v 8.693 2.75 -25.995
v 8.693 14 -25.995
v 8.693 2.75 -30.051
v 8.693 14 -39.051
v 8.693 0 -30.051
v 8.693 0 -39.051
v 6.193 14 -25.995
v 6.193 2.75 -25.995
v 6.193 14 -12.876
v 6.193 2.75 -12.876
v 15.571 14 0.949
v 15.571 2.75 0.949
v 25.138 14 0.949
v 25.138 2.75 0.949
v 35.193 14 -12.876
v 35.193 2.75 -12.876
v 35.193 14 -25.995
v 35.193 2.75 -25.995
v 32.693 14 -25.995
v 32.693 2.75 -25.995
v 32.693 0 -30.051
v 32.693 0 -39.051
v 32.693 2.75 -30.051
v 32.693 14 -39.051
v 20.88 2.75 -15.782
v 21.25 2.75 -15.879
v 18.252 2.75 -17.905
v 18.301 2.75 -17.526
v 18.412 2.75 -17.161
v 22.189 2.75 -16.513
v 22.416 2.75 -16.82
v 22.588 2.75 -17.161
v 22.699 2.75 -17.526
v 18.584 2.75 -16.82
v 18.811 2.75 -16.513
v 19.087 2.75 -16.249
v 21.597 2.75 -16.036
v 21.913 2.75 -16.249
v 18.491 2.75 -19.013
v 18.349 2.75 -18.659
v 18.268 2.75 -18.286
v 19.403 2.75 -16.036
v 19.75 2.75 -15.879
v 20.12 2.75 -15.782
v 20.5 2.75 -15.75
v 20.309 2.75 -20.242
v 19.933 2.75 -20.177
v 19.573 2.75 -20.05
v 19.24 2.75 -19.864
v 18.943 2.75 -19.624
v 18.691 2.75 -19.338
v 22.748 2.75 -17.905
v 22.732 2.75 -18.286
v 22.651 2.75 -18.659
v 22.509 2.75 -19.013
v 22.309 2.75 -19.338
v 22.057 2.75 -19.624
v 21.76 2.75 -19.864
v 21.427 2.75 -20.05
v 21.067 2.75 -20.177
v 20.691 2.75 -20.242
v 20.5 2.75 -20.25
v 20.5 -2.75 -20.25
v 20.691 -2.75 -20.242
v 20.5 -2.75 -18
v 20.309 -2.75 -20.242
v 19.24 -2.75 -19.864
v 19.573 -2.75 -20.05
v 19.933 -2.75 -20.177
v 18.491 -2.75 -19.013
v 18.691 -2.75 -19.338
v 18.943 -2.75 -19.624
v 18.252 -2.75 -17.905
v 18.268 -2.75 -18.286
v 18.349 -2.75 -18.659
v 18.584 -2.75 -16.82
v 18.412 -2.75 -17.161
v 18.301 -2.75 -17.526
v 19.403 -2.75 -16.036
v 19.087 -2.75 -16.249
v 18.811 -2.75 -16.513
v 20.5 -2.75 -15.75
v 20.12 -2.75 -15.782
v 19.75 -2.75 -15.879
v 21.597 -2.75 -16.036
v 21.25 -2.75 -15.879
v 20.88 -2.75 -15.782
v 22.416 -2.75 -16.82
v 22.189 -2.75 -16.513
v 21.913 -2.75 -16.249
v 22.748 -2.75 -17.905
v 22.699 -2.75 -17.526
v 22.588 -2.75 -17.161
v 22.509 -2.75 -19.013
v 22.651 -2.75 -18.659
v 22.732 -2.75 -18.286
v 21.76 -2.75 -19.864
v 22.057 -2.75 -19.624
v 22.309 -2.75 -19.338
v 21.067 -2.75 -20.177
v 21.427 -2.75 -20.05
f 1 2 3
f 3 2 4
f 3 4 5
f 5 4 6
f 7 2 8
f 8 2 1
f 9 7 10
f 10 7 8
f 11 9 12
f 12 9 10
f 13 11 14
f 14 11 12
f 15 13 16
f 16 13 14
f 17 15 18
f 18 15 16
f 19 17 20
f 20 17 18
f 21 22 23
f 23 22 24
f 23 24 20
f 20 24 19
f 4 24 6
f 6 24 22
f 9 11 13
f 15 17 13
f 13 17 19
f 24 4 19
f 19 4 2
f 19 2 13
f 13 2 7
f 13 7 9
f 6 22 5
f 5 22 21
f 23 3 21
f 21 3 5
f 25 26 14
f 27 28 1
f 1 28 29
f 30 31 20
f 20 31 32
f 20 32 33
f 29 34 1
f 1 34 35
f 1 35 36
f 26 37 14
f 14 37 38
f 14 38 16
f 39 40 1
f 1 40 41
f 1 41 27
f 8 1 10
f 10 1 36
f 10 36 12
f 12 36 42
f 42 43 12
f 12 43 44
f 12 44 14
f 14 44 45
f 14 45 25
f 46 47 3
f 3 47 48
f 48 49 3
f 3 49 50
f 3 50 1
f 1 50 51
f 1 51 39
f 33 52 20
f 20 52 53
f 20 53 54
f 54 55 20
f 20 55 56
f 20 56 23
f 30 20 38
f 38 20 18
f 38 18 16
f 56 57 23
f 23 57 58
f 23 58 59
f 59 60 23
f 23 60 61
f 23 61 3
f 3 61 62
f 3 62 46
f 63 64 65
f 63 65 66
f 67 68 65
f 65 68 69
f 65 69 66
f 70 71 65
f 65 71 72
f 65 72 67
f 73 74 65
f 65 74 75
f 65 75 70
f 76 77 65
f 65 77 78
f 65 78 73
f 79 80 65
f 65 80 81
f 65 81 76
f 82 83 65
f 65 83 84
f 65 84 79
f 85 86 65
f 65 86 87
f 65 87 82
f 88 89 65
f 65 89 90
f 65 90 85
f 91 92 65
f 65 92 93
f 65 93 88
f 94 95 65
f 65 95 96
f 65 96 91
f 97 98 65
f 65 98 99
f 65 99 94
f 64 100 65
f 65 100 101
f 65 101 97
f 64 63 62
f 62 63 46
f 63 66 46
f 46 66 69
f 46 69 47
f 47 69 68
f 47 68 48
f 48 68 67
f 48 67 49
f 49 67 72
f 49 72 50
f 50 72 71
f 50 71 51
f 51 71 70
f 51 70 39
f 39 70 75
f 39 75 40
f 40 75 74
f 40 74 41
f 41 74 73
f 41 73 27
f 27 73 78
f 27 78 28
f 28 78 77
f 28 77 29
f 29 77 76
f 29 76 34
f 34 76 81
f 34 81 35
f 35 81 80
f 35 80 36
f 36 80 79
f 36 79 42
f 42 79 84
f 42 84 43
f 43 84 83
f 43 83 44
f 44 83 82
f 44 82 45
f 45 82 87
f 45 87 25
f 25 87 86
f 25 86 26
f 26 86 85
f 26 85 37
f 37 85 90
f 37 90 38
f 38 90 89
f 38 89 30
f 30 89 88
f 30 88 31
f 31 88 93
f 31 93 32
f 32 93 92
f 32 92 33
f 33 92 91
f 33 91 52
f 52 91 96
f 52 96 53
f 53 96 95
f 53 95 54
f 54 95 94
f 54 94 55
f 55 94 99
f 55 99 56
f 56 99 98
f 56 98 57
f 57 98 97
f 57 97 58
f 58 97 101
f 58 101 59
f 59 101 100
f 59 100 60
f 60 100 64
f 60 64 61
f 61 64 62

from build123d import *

# Parameters (mm, degrees)
BOSS_EXTRUDE1_DEPTH = 14
SKETCH2_R           = 2.25
BOSS_EXTRUDE2_DEPTH = 2.75
SKETCH4_R           = 2.25
CUT_EXTRUDE1_DEPTH  = 2.75


with BuildPart() as part:
    # Sketch1 → Boss-Extrude1 (new body)
    with BuildSketch(Plane(origin=(0, 0, 0), x_dir=(1, 0, 0), z_dir=(0, 1, 0))):
        Polygon((8.692930554, 39.050653624), (32.692930554, 39.050653624), (32.692930554, 25.995392605), (35.192930554, 25.995392605), (35.192930554, 12.875501581), (25.138333129, -0.949346376), (15.571219536, -0.949346376), (6.192930554, 12.875501581), (6.192930554, 25.995392605), (8.692930554, 25.995392605), align=None)
    extrude(amount=BOSS_EXTRUDE1_DEPTH)

    # Sketch2 → Boss-Extrude2 (add)
    with BuildSketch(Plane.XZ):
        with Locations(Location((20.5, -18, 0), (0, 0, 270))):
            Circle(SKETCH2_R)
    extrude(amount=BOSS_EXTRUDE2_DEPTH)

    # Sketch4 → Cut-Extrude1 (cut)
    with BuildSketch(Plane(origin=(0, 0, 0), x_dir=(-1, 0, 0), z_dir=(0, -1, 0))):
        Polygon((-8.692930554, 30.050653624), (-8.692930554, 25.995392605), (-6.192930554, 25.995392605), (-6.192930554, 12.875501581), (-15.571219536, -0.949346376), (-25.138333129, -0.949346376), (-35.192930554, 12.875501581), (-35.192930554, 25.995392605), (-32.692930554, 25.995392605), (-32.692930554, 30.050653624), align=None)
        with Locations(Location((-20.5, 18, 0), (0, 0, 90))):
            Circle(SKETCH4_R, mode=Mode.SUBTRACT)
    extrude(amount=-CUT_EXTRUDE1_DEPTH, mode=Mode.SUBTRACT)


solid = part.part
